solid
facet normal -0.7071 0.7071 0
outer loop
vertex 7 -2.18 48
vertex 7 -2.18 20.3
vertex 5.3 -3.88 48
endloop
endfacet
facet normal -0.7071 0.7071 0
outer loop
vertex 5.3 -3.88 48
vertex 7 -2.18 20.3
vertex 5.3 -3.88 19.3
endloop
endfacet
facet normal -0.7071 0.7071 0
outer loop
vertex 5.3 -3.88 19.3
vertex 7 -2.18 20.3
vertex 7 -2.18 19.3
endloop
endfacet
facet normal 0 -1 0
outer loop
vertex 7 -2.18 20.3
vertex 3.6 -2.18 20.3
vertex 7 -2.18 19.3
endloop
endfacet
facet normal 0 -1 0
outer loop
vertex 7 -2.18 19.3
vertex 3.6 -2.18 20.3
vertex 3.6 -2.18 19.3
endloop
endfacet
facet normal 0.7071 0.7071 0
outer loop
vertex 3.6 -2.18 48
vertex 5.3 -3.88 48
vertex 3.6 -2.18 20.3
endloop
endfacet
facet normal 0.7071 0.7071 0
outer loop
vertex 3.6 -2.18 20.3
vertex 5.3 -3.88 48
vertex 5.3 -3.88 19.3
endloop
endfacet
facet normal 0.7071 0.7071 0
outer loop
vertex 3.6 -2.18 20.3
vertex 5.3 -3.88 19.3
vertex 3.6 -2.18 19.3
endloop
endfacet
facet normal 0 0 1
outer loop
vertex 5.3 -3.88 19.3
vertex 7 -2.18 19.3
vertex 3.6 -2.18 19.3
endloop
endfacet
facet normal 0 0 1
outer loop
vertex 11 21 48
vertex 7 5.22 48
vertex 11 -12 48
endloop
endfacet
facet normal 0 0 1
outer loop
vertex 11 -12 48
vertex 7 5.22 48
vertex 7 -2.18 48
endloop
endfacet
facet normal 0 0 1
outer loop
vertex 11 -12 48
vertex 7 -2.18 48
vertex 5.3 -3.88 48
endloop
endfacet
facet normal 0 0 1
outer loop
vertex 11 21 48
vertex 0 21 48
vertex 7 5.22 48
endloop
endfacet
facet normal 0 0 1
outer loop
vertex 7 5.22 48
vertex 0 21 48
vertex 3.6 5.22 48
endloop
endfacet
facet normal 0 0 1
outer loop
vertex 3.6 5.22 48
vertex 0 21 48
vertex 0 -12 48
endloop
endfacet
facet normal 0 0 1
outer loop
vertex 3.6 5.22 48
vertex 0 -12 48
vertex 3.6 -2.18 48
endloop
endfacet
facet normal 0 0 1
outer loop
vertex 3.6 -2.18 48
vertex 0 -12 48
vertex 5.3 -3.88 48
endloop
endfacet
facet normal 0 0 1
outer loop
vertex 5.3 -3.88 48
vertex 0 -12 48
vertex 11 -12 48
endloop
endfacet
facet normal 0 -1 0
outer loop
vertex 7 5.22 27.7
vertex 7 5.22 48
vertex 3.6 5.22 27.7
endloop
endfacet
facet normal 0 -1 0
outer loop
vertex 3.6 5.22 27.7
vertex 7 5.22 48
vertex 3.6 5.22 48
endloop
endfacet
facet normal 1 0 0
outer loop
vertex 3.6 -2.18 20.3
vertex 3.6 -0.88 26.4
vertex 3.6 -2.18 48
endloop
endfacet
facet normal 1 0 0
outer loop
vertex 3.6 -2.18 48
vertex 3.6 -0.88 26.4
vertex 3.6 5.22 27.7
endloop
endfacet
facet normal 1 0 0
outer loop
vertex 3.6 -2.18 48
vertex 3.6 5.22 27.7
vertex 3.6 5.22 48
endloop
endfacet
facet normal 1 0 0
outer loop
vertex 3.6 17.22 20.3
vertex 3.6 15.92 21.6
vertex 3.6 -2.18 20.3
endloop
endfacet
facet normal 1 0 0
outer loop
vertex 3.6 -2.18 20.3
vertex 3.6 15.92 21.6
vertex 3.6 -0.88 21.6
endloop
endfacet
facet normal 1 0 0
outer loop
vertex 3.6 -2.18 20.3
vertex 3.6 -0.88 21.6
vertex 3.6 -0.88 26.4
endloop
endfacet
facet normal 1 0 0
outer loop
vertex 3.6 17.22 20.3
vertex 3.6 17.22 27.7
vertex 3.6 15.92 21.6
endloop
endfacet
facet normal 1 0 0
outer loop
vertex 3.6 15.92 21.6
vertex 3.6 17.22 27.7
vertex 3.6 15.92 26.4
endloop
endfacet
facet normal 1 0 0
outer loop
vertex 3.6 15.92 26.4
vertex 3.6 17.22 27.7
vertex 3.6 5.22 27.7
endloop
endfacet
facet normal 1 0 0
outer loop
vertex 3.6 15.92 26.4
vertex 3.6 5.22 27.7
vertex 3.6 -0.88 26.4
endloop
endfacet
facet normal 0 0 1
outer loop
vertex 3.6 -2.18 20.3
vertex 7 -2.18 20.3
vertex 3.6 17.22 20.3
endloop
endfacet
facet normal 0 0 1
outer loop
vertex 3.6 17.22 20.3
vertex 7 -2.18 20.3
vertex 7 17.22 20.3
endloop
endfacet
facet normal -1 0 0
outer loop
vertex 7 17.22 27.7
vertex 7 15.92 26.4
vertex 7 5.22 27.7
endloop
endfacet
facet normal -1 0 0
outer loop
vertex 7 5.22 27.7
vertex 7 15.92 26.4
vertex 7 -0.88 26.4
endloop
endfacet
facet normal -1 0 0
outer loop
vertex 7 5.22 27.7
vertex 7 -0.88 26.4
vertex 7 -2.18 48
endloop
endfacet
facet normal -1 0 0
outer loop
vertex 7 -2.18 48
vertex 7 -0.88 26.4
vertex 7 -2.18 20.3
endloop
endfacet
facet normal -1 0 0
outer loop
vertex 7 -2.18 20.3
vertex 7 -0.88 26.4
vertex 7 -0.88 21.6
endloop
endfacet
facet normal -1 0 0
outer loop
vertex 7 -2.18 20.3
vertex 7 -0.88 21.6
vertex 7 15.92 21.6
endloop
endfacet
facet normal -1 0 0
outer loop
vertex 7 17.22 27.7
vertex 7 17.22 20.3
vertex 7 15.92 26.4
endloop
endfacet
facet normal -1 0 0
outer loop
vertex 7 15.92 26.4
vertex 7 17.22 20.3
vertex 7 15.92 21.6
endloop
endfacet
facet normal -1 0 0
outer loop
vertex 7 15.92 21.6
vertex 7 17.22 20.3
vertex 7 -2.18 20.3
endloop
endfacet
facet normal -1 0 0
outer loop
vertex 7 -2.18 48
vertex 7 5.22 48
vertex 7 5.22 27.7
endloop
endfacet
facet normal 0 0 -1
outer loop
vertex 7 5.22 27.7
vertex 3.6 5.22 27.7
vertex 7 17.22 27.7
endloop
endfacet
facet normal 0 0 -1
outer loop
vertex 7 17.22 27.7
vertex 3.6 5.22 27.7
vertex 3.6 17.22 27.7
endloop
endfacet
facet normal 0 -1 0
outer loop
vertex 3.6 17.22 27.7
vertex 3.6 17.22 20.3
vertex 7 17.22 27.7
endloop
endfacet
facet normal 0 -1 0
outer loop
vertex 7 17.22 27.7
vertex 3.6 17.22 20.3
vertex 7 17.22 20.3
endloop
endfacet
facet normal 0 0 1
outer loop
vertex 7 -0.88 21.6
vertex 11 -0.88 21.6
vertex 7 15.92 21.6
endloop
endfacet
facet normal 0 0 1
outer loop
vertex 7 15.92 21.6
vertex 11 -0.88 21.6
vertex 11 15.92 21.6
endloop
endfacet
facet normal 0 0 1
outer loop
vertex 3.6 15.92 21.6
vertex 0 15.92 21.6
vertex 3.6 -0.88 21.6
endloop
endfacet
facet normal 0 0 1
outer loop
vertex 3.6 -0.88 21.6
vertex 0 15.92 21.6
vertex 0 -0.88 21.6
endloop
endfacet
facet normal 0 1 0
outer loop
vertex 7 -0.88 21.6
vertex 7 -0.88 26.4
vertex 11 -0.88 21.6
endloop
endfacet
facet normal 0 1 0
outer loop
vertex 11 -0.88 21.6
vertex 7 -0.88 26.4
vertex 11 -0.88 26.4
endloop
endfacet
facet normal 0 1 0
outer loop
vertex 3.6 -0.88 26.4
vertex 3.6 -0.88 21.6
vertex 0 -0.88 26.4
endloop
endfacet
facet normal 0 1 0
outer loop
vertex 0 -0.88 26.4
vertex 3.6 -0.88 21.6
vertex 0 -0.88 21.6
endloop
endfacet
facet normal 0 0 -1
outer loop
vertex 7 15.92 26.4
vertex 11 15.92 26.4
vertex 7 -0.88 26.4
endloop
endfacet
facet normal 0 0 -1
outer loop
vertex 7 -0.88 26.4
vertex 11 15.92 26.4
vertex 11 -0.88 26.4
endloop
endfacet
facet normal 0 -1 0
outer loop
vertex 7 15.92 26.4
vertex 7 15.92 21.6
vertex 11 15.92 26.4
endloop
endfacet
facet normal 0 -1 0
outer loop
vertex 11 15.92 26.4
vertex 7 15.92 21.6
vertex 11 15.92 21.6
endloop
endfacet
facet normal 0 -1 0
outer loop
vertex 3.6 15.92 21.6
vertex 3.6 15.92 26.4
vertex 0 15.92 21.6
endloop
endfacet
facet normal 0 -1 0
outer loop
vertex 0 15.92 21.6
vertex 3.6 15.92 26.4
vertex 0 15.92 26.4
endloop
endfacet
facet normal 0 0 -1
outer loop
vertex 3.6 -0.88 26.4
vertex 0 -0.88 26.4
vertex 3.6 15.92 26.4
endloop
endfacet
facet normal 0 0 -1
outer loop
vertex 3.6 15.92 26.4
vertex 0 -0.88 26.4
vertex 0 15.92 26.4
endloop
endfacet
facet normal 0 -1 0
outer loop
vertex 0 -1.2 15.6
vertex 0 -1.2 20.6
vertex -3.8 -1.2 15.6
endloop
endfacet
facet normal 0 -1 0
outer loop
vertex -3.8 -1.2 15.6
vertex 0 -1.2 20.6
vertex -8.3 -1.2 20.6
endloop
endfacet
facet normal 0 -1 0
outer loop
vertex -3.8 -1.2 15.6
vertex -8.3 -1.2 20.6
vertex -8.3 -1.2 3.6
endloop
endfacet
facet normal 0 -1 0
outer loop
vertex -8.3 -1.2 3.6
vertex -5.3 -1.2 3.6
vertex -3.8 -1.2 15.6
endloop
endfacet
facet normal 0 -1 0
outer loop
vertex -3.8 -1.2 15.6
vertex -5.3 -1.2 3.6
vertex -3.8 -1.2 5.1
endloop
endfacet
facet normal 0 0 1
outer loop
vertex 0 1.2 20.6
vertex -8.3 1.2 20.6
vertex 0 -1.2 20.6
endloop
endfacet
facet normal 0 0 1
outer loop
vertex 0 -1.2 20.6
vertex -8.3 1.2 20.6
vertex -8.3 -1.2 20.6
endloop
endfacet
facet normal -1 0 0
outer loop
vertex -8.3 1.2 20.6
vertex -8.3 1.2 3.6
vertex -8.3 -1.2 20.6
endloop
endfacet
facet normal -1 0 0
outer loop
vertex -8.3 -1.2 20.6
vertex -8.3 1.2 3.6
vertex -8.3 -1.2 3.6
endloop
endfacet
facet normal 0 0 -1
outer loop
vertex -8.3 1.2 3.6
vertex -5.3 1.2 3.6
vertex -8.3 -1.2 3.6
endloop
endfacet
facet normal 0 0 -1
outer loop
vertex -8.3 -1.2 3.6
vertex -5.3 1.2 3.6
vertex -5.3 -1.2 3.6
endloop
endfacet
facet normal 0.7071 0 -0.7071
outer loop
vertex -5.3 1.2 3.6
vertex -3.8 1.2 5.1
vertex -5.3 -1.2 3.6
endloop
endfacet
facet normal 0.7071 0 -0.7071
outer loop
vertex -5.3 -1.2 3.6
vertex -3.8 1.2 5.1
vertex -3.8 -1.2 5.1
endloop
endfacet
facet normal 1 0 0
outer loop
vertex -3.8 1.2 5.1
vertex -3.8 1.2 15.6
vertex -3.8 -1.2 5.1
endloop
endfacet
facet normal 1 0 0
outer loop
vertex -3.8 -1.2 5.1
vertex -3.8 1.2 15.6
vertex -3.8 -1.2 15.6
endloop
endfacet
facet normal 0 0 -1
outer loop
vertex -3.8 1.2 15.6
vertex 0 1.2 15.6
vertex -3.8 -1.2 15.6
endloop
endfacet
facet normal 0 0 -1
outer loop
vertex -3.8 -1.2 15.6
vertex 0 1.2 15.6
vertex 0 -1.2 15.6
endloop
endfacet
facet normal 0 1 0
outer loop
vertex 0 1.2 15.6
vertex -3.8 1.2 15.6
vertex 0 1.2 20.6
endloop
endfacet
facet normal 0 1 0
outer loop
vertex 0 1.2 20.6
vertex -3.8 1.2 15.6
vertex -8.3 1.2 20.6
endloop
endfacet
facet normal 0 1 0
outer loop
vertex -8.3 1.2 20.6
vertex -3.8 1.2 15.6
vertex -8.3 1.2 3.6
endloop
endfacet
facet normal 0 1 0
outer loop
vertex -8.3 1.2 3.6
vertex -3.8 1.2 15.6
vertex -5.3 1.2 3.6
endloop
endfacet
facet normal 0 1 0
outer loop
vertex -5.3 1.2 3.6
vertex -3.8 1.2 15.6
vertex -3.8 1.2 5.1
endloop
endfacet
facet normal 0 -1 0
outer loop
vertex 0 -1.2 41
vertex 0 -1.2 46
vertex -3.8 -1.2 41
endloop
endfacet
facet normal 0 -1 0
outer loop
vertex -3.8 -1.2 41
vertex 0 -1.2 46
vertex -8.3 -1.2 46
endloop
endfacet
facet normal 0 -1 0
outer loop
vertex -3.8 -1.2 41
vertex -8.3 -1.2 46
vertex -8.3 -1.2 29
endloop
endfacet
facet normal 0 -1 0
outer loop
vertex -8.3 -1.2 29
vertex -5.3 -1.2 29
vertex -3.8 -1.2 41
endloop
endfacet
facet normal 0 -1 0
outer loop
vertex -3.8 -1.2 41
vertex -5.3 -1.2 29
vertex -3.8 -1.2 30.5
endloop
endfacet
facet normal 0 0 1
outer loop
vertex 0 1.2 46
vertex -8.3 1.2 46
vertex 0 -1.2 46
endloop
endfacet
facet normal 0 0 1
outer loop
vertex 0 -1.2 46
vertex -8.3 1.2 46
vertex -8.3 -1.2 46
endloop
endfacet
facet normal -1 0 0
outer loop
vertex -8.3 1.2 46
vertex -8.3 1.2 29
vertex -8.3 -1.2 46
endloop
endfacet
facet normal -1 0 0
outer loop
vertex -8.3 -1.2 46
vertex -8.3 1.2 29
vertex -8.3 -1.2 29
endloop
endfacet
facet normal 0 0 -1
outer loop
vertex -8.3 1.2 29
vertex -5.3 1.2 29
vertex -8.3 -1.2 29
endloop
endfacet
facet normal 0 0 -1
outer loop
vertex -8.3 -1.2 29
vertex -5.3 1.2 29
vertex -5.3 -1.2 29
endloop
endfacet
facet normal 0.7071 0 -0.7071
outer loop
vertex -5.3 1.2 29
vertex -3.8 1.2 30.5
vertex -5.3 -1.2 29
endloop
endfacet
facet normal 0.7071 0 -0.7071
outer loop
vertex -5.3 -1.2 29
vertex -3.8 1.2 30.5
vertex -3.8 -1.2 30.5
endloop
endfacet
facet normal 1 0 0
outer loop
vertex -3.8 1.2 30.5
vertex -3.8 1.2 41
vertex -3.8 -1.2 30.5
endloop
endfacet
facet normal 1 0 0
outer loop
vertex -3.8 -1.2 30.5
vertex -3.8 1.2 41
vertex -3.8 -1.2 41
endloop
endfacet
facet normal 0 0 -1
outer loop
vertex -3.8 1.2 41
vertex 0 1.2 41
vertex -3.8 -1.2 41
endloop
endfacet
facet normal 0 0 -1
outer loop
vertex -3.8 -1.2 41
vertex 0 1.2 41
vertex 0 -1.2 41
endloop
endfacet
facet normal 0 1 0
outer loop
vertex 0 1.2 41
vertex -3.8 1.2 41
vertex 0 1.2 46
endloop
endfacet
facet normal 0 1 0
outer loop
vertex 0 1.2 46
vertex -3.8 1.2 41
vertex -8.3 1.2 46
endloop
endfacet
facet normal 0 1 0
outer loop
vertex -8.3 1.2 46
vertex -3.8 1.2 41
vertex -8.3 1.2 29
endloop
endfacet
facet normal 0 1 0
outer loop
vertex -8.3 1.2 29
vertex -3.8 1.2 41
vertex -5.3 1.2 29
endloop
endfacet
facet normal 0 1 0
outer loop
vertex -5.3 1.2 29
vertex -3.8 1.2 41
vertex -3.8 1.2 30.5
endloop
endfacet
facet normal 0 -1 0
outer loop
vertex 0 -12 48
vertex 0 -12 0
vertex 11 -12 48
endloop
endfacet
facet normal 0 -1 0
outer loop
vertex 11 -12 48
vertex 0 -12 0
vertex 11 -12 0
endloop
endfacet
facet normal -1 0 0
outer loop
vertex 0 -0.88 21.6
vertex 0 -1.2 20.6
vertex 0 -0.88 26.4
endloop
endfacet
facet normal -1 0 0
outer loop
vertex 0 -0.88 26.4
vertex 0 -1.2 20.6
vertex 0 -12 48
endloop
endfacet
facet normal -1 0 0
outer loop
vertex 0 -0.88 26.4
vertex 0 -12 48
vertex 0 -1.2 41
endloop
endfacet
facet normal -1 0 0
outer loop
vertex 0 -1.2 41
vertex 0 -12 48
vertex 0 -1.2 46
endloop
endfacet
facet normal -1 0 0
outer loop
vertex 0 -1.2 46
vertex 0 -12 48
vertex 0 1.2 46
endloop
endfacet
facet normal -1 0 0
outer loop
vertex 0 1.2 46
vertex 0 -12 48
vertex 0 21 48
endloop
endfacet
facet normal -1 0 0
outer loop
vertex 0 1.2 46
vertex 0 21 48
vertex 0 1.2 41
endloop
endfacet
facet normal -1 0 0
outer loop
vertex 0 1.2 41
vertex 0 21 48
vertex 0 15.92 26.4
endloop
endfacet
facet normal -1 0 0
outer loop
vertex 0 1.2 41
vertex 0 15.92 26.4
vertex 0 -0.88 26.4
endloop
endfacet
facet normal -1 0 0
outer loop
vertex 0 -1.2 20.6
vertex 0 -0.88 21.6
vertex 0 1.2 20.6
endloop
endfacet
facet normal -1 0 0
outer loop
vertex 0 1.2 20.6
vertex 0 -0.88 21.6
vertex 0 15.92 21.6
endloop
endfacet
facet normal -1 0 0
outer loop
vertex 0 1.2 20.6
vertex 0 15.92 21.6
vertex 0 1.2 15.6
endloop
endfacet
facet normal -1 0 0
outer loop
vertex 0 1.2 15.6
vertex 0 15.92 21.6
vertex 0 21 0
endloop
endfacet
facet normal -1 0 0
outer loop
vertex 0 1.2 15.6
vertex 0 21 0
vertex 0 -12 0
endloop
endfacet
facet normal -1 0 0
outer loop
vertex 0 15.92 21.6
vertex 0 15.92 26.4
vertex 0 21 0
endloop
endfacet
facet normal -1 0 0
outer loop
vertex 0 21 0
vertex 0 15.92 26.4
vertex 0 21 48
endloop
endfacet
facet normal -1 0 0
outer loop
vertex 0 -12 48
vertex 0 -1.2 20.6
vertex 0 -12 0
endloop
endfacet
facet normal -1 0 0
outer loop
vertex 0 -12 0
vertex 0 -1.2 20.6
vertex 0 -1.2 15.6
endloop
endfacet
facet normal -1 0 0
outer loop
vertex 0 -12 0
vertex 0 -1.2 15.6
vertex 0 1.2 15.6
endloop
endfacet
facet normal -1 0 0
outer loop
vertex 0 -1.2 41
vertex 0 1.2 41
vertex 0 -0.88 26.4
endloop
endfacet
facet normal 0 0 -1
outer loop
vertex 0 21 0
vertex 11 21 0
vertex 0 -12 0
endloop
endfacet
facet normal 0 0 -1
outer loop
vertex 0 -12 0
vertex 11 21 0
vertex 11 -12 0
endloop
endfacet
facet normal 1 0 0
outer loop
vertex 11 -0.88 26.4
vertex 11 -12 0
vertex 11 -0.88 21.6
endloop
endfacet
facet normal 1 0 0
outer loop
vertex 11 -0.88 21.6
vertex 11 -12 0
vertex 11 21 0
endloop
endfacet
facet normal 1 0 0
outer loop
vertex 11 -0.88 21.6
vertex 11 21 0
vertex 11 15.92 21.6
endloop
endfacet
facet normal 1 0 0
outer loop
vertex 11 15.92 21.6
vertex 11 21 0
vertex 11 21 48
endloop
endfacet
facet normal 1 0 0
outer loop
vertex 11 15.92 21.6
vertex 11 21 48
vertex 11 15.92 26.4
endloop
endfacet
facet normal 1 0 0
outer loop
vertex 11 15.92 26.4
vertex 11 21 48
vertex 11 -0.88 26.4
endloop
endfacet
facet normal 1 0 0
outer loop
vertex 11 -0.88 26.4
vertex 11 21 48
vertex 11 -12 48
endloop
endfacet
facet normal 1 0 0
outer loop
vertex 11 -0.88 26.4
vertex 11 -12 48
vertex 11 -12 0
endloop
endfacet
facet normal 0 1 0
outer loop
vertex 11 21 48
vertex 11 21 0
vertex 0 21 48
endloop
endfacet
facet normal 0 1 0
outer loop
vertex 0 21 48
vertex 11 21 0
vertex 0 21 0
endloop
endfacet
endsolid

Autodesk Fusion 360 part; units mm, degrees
sketch "Plate" plane through (0, 0, 0) normal (0, 1, 0) x (1, 0, 0)
  line L0 (0, 0) -> (11, 0)
  line L1 (11, 0) -> (11, -48)
  line L2 (11, -48) -> (0, -48)
  line L3 (0, -48) -> (0, 0)
  dimension "d382" = 11
  dimension "d383" = 48
extrude "Plate (1)" add sketch "Plate" along normal mid plane 33 from surface at 4.5
sketch "Hook profile" plane through (0, 0, 0) normal (0, 1, 0) x (1, 0, 0)
  line L0 (0, -46) -> (-8.3, -46)
  line L1 (-8.3, -46) -> (-8.3, -29)
  line L2 (-8.3, -29) -> (-5.3, -29)
  line L3 (-5.3, -29) -> (-3.8, -30.5)
  line L4 (-3.8, -30.5) -> (-3.8, -41)
  line L5 (-3.8, -41) -> (0, -41)
  line L6 (0, -41) -> (0, -46)
  dimension "d387" = 46
  dimension "d388" = 8.3
  dimension "d389" = 3.8
  dimension "d390" = 5
  dimension "d391" = 10.5
  dimension "d392" = 1.5
  dimension "d393" = 1.5
extrude "Hook profile (1)" add sketch "Hook profile" along normal mid plane 2.4
pattern_linear "Hook rows" count 2 spacing 25.4 along (0, 0, -1) count 3 spacing 0 along (0, 0, 1) of "Hook profile (1)"
sketch "Screw hole" plane through (0, 0, 0) normal (0, 1, 0) x (1, 0, 0)
  line L0 (-1, -21.6) -> (12, -21.6)
  line L1 (12, -21.6) -> (12, -26.4)
  line L2 (12, -26.4) -> (-1, -26.4)
  line L3 (-1, -26.4) -> (-1, -21.6)
  dimension "d400" = 12
  dimension "d401" = 21.6
  dimension "d402" = 13
  dimension "d403" = 4.8
extrude "Screw hole (1)" cut sketch "Screw hole" along normal mid plane 16.8 from surface at 7.52
sketch "Nut cavity" plane through (0, 0, 0) normal (0, 1, 0) x (1, 0, 0)
  line L0 (3.6, -20.3) -> (7, -20.3)
  line L1 (7, -20.3) -> (7, -27.7)
  line L2 (7, -27.7) -> (3.6, -27.7)
  line L3 (3.6, -27.7) -> (3.6, -20.3)
  dimension "d407" = 7
  dimension "d408" = 20.3
  dimension "d409" = 3.4
  dimension "d410" = 7.4
extrude "Nut cavity (1)" cut sketch "Nut cavity" along normal mid plane 19.4 from surface at 7.52
sketch "Nut entry" plane through (0, 0, 0) normal (0, 1, 0) x (1, 0, 0)
  line L0 (3.6, -26.7) -> (7, -26.7)
  line L1 (7, -26.7) -> (7, -49)
  line L2 (7, -49) -> (3.6, -49)
  line L3 (3.6, -49) -> (3.6, -26.7)
  dimension "d414" = 7
  dimension "d415" = 26.7
  dimension "d416" = 3.4
  dimension "d417" = 22.3
extrude "Nut entry (1)" cut sketch "Nut entry" along normal mid plane 7.4 from surface at 1.52
sketch "Cavity roof" plane through (0, 0, 0) normal (0, 0, 1) x (1, 0, 0)
  line L0 (3.6, -2.18) -> (7, -2.18)
  line L1 (7, -2.18) -> (5.3, -3.88)
  line L2 (5.3, -3.88) -> (3.6, -2.18)
  dimension "d421" = 3.6
  dimension "d422" = 2.18
  dimension "d423" = 7
  dimension "d424" = 5.3
  dimension "d425" = 1.7
extrude "Cavity roof (1)" cut sketch "Cavity roof" along normal mid plane 29.7 from surface at 34.15
equation "bracketWidth = 24.0 mm" comment "bracket width across the upright"
equation "plateHeight = 48.0 mm" comment "plate height"
equation "plateInboardExtension = 9.0 mm" comment "extra plate toward the desk centre, where the channel reaches"
equation "boardThickness = 6.0 mm" comment "measured SKADIS panel thickness"
equation "screwLength = 15.0 mm" comment "measured decorative M4 screw"
equation "screwDiameter = 4.0 mm" comment "M4 shank"
equation "screwClearance = 0.8 mm" comment "slack around the shank"
equation "screwTipClearance = 2.0 mm" comment "tip stops this short of the plate's back face"
equation "screwSlotWidth = screwDiameter + screwClearance" comment "screw relief slot height"
equation "nutAcrossFlats = 7.0 mm" comment "M4 square nut across flats"
equation "nutThickness = 3.0 mm" comment "M4 square nut thickness"
equation "nutChannelClearance = 0.4 mm" comment "slack around the nut in its channel"
equation "nutChannelHeight = nutAcrossFlats + nutChannelClearance" comment "channel height; under the nut's diagonal so it cannot turn"
equation "plateThickness = screwLength - boardThickness + screwTipClearance" comment "derived: deep enough to swallow the screw"
equation "mountTravel = 12.0 mm" comment "left-right adjustment"
equation "nutChannelLength = mountTravel + nutAcrossFlats + nutChannelClearance" comment "channel length along the plate"
equation "screwSlotLength = mountTravel + screwSlotWidth" comment "relief slot length along the plate"
equation "topMountZ = 24.0 mm" comment "top channel centre"
equation "mountOffsetY = 7.52 mm" comment "channel centre on the board's grid"
equation "slotOvershoot = 1.0 mm" comment "cuts reach past the faces they cut"
equation "slotWidth = 3.2 mm" comment "measured upright slot width"
equation "slotPitchVertical = 25.4 mm" comment "1 inch, measured"
equation "faceMetalThickness = 2.0 mm" comment "upright face metal"
equation "hookTabWidth = slotWidth - 0.8 mm" comment "blade width through the slot"
equation "hookThroat = faceMetalThickness + 1.8 mm" comment "gap behind the plate"
equation "hookNeckHeight = 5.0 mm" comment "bears on the slot bottom edge"
equation "hookLipThickness = 4.5 mm" comment "lip behind the upright face"
equation "hookLipDrop = 12.0 mm" comment "engagement below the neck"
equation "hookLipChamfer = 1.5 mm" comment "lead-in past slot burrs"
equation "topHookNeckTop = plateHeight - 2 mm" comment "top hook row"
equation "hookRows = 2" comment "hook rows (pattern count)"
equation "nutCavityClearance = 0.4 mm" comment "slack across the nut's thickness"
equation "nutWallThickness = 4.0 mm" comment "wall in front of the nut; the screw pulls the nut against it"
equation "nutCavityDepth = nutThickness + nutCavityClearance" comment "cavity depth"
equation "nutRoofDepth = nutCavityDepth / 2" comment "45 deg roof beyond the cavity's outboard end, so it prints unsupported"
equation "d382 = plateThickness"
equation "d383 = plateHeight"
equation "d384 = plateInboardExtension / 2"
equation "d385 = bracketWidth + plateInboardExtension"
equation "d387 = topHookNeckTop"
equation "d388 = hookThroat + hookLipThickness"
equation "d389 = hookThroat"
equation "d390 = hookNeckHeight"
equation "d391 = hookLipDrop - hookLipChamfer"
equation "d392 = hookLipChamfer"
equation "d393 = hookLipChamfer"
equation "d394 = hookTabWidth"
equation "d396 = hookRows"
equation "d398 = -slotPitchVertical"
equation "d400 = plateThickness + slotOvershoot"
equation "d401 = topMountZ - screwSlotWidth / 2"
equation "d402 = plateThickness + 2 * slotOvershoot"
equation "d403 = screwSlotWidth"
equation "d404 = mountOffsetY"
equation "d405 = screwSlotLength"
equation "d407 = plateThickness - nutWallThickness"
equation "d408 = topMountZ - nutChannelHeight / 2"
equation "d409 = nutCavityDepth"
equation "d410 = nutChannelHeight"
equation "d411 = mountOffsetY"
equation "d412 = nutChannelLength"
equation "d414 = plateThickness - nutWallThickness"
equation "d415 = topMountZ + nutChannelHeight / 2 - slotOvershoot"
equation "d416 = nutCavityDepth"
equation "d417 = plateHeight - topMountZ - nutChannelHeight / 2 + 2 * slotOvershoot"
equation "d418 = mountOffsetY - mountTravel / 2"
equation "d419 = nutChannelHeight"
equation "d421 = plateThickness - nutWallThickness - nutCavityDepth"
equation "d422 = -( mountOffsetY - nutChannelLength / 2 )"
equation "d423 = plateThickness - nutWallThickness"
equation "d424 = plateThickness - nutWallThickness - nutCavityDepth / 2"
equation "d425 = nutRoofDepth"
equation "d426 = ( topMountZ - nutChannelHeight / 2 + plateHeight ) / 2"
equation "d427 = plateHeight - topMountZ + nutChannelHeight / 2 + 2 * slotOvershoot"
